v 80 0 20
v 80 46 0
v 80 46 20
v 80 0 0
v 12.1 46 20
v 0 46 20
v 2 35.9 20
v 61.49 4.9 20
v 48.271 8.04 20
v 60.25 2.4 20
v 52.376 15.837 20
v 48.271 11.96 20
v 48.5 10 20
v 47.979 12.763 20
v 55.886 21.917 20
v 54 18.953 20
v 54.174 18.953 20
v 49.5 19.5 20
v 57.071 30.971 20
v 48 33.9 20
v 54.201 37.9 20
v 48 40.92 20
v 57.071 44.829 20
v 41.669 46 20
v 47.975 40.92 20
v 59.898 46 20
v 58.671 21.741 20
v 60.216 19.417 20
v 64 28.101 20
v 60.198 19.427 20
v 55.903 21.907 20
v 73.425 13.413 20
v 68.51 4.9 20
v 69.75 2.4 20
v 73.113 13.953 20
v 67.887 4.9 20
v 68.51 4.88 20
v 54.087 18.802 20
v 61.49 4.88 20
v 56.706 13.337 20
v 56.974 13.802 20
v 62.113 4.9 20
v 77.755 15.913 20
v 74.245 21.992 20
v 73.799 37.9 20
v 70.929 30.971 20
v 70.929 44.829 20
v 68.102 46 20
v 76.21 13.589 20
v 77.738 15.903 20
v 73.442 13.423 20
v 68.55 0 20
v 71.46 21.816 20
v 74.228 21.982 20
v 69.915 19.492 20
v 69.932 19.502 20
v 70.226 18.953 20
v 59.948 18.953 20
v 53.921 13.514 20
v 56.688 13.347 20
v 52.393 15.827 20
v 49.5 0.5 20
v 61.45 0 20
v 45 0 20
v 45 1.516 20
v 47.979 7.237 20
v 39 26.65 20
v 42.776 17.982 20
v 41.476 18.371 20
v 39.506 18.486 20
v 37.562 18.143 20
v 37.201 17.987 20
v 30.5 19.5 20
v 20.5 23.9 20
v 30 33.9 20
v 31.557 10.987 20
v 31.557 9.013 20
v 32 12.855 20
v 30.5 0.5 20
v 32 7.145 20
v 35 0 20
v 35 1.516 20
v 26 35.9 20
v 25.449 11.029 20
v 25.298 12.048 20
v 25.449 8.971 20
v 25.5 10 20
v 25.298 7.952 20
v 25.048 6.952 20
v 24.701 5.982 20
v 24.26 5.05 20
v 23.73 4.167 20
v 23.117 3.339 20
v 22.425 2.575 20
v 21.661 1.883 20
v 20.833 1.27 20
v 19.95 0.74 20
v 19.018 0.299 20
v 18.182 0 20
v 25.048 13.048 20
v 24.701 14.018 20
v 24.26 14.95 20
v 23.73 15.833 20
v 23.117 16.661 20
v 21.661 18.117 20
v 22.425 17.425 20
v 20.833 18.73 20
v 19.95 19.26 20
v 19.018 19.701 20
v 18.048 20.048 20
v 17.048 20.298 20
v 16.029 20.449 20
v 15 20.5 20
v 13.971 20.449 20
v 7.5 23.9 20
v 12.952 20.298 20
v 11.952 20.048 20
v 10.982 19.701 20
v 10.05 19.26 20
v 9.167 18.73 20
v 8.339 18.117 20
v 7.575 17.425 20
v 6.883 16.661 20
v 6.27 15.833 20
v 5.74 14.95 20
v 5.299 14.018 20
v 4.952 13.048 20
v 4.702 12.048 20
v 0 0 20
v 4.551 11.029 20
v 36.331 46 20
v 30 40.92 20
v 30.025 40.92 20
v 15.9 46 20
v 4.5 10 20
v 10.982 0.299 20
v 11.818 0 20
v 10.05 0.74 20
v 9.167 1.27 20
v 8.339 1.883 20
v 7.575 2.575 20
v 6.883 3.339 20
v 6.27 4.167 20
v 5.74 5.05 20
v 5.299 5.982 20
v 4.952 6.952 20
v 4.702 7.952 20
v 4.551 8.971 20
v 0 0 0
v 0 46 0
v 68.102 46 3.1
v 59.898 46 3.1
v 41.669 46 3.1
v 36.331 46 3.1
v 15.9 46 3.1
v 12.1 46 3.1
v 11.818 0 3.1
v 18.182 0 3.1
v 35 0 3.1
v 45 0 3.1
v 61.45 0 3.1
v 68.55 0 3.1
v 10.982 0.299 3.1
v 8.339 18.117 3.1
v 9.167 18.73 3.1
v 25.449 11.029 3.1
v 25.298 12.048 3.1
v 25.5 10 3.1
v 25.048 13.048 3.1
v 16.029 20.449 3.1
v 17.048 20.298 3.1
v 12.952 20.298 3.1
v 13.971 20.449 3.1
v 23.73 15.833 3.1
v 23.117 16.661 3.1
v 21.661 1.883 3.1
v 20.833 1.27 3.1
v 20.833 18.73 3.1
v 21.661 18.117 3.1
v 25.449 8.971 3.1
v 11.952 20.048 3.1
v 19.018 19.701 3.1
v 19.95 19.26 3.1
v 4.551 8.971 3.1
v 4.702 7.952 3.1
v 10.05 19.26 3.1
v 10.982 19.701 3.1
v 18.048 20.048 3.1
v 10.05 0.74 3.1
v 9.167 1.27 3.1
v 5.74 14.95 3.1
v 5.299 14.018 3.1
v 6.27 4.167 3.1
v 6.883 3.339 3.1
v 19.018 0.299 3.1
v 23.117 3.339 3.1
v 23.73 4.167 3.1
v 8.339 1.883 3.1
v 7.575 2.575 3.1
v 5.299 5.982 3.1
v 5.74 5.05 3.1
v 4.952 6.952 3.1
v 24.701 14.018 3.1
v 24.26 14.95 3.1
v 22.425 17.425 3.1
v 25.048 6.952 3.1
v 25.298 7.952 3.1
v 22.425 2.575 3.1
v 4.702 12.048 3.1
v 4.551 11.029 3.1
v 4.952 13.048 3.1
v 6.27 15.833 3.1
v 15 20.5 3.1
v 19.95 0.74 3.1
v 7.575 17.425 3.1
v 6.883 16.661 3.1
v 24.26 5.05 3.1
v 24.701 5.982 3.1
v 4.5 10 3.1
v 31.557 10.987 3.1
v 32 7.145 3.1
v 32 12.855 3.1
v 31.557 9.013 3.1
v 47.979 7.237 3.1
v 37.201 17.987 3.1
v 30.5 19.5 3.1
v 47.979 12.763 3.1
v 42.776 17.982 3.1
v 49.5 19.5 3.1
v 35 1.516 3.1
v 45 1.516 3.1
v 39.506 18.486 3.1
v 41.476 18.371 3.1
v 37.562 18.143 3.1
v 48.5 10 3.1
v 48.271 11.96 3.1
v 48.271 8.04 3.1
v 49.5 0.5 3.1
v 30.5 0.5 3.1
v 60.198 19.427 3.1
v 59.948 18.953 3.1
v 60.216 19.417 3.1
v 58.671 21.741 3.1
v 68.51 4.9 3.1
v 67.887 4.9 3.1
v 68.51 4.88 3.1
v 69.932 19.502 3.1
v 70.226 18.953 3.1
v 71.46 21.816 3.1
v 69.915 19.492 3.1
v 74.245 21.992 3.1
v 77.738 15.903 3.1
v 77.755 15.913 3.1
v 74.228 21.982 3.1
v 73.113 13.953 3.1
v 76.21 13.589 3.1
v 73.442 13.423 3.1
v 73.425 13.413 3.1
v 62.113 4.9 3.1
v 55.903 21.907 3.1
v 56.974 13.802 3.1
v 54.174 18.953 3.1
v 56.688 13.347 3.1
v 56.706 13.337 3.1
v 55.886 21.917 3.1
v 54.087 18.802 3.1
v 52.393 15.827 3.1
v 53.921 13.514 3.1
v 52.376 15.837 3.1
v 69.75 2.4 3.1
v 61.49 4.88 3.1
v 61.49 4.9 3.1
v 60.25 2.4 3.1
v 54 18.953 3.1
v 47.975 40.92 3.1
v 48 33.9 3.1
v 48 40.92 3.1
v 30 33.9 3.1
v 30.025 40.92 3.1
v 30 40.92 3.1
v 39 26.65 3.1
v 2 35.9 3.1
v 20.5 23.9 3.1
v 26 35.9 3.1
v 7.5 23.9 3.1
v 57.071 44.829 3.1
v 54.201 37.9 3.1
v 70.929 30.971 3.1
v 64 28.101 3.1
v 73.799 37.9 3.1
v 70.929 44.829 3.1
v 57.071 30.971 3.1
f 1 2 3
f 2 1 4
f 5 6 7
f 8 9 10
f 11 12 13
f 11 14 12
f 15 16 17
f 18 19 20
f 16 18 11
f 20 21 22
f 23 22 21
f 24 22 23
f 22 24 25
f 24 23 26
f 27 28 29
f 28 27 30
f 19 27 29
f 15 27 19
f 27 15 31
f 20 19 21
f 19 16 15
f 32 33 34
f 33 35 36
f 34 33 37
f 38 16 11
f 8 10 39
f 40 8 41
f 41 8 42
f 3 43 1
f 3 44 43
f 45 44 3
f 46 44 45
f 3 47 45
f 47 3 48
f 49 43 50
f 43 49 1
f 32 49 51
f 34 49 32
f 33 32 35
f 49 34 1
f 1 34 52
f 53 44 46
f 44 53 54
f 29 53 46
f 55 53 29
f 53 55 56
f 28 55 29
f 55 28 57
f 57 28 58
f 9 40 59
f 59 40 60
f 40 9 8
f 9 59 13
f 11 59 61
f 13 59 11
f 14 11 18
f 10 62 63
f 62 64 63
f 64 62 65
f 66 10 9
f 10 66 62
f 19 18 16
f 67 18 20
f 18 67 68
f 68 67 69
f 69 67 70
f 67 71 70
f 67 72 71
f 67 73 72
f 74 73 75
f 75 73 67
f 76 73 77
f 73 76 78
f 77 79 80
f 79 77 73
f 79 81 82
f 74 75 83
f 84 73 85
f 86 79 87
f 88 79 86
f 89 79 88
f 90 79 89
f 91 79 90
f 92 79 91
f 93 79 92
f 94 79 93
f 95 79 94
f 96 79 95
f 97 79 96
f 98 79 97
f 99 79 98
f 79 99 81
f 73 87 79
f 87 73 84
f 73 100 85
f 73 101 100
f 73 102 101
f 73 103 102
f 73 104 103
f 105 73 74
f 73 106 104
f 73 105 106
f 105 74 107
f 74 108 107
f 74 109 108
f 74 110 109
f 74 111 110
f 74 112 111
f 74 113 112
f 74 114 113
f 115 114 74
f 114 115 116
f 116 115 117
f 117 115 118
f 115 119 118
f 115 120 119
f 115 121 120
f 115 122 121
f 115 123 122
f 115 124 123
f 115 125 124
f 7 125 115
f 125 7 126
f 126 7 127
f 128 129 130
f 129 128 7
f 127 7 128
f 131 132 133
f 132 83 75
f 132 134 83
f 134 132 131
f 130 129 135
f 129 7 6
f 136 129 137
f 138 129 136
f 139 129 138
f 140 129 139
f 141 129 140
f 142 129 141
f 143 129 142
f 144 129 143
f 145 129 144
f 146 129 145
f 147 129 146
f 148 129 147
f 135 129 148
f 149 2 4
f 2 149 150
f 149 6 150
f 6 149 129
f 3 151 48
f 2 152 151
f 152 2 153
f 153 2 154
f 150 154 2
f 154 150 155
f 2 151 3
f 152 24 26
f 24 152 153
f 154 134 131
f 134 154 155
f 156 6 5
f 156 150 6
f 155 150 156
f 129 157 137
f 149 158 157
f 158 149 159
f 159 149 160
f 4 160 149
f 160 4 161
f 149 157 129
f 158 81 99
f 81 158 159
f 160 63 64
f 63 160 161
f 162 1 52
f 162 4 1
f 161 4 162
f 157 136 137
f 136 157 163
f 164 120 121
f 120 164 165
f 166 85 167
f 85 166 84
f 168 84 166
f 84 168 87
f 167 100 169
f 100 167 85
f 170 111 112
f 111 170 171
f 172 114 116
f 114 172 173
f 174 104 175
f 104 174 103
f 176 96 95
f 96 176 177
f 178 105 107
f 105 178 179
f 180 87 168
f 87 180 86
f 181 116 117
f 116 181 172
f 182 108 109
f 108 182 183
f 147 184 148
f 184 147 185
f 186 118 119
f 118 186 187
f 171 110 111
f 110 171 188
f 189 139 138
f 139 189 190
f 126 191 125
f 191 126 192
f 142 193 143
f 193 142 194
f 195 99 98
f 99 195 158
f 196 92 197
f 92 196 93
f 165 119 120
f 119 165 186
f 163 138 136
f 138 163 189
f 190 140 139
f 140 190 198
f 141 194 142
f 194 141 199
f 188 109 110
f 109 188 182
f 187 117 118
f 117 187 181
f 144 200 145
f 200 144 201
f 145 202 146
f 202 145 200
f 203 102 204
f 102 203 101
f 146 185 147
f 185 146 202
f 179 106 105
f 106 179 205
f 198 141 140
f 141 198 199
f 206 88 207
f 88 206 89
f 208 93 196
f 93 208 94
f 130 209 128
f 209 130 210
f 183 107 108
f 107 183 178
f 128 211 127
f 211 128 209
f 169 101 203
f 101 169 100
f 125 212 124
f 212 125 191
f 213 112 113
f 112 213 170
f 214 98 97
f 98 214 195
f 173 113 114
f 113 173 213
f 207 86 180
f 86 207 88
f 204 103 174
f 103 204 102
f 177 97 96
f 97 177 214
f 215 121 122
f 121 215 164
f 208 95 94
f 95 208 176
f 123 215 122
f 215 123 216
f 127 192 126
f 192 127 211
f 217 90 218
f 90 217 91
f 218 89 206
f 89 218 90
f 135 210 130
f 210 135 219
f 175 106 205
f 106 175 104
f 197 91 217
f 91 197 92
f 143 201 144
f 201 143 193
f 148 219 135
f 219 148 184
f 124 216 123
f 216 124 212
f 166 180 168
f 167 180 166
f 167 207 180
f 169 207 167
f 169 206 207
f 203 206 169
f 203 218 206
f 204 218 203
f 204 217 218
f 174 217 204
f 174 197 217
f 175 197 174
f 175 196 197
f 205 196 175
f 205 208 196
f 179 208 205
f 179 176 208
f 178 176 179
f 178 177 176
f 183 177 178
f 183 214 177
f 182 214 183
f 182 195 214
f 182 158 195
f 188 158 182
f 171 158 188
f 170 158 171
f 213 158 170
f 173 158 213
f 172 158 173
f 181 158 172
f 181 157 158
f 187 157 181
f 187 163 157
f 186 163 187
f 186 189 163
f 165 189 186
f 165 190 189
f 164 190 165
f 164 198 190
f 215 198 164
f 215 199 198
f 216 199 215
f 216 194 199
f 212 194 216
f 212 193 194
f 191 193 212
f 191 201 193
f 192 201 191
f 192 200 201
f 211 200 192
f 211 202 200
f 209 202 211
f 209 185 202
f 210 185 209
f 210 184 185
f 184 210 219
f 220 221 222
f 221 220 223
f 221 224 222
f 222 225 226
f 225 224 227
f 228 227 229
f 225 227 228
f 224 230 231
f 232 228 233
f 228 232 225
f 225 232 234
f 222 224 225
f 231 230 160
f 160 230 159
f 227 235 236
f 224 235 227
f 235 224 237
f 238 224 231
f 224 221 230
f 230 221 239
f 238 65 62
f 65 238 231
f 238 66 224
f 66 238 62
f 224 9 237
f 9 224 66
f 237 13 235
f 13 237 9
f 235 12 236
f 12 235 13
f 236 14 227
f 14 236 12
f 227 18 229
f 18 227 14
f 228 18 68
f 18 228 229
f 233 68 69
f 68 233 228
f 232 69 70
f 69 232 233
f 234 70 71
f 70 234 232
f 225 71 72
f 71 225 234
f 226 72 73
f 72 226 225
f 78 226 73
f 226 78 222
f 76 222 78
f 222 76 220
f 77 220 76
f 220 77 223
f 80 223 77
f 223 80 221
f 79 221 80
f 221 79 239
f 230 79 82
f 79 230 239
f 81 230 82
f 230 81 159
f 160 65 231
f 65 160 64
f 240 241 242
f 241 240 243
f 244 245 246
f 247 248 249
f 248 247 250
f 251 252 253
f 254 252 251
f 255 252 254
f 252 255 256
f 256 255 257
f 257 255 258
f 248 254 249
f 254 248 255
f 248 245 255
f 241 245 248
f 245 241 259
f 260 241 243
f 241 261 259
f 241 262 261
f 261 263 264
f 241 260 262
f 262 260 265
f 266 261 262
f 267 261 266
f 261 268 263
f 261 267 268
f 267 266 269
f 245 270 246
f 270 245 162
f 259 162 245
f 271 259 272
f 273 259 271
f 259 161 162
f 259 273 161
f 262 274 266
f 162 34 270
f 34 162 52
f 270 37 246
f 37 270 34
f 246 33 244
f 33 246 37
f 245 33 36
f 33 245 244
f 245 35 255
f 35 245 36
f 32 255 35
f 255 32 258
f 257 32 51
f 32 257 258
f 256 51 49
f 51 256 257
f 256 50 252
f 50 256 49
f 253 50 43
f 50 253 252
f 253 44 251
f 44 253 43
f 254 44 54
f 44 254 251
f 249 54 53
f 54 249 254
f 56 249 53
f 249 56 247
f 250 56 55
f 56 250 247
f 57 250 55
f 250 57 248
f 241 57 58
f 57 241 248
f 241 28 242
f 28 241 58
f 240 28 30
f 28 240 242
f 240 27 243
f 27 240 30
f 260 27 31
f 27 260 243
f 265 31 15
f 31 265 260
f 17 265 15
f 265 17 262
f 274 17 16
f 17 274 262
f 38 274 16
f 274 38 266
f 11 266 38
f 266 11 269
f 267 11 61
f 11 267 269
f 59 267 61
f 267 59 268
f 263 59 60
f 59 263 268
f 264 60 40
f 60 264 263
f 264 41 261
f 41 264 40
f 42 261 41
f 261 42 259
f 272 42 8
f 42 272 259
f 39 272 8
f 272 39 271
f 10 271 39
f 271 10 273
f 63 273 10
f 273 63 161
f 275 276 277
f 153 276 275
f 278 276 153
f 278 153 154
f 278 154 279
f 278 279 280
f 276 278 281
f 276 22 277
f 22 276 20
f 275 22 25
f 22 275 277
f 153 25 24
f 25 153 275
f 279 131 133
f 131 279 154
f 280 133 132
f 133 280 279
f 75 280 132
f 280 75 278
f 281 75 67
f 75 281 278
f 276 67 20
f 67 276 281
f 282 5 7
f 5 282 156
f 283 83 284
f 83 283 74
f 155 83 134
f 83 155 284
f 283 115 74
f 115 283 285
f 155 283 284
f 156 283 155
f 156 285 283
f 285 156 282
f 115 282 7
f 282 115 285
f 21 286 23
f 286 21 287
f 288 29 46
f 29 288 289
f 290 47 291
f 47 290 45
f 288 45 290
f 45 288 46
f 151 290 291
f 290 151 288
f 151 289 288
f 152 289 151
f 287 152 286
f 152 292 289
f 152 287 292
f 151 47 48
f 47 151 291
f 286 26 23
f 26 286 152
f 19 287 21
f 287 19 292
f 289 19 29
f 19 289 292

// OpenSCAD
// Box dimensions
box_x = 80;
box_y = 46;
box_z = 20;

// Pocket dimensions
pocket_radius = 21;
pocket_depth  = 17;

// Position
shield_x_wall = 15;
shield_y_wall = 10;

wound_x_wall = 40;
wound_y_wall = 10;

ion_x_wall = 65;
ion_y_wall = 0;

// Opposite side of holder
vehicle_x_wall = 30;
vehicle_y_wall = box_y-12;

commander_x_wall = 14;
commander_y_wall = box_y-10;

aim_x_wall = 64;
aim_y_wall = box_y-8;

ion_tri_length = 5;
niblet_length = 3.5;
module ion_tri_piece_1 () {
    translate([2, niblet_length, 0]){
       polygon(points=[
        [0, 0],        // Point A
        [ion_tri_length, 0],        // Point B
        [ion_tri_length/2, ion_tri_length/4]       // Point C
    ]); 
    }
}
module ion_point_niblet(){
    ion_tri_piece_1();
    mirror([0, 1, 0]){
        ion_tri_piece_1();
    }
    translate([2, -(niblet_length+0.01), 0]){
        square([ion_tri_length,((niblet_length * 2) + 0.02)]); //0.2 used here to connect triangles to square
    }    
}

module create_ion_token(){
    // ion Side length
    s = 22;
    // Height of ion equilateral triangle
    h = s * sqrt(3) / 2;
    //Start of the ion token creation. No, it can't be refactored
    union(){
        translate([0,(h/3)*2,0]){
            rotate([0,0,60]){
                translate([0,(h/3),0]){
                    union(){
                        translate([0,-(h/3)*1,0]){
                            rotate([0,0,60]){
                                translate([0,-((h/3)*2),0]){
                                    union(){
                                        //first niblet
                                        translate([0,-2,0]){
                                            rotate([0,0,90]){
                                                ion_point_niblet();
                                            }
                                        }
                                        
                                        //ion token base
                                        //rotate so we can align the niblets
                                        rotate([0,0,60]){ 
                                            polygon(points=[
                                            [0, 0],        // Point A
                                            [s, 0],        // Point B
                                            [s/2, h]       // Point C
                                            ]);
                                        }
                                    }
                                }
                            }
                        }
                        //second niblet
                        translate([0,-0.8,0]){
                            rotate([0,0,90]){
                                ion_point_niblet();
                            }
                        }
                    }
                }
            }
        }
        //third niblet
        translate([0,-2,0]){
            rotate([0,0,90]){
                ion_point_niblet();
            }
        }
    }
}

module create_vehicle_token(){
    //vehicle_tri_side
    vehicle_tri_height_from_base = 7.25;
    vehicle_tri_base_len = 18;
    vehicle_tri_square_height = 7;
    square([vehicle_tri_base_len,vehicle_tri_square_height+0.02]);
    mirror([0,1,0]){
        polygon(points=[
        [0, 0],        // Point A
        [vehicle_tri_base_len, 0],        // Point B
        [vehicle_tri_base_len/2, vehicle_tri_height_from_base]       // Point C
        ]);
    }
    translate([0,vehicle_tri_square_height,0]){
        polygon(points=[
            [0, 0],        // Point A
            [vehicle_tri_base_len, 0],        // Point B
            [vehicle_tri_base_len/2, vehicle_tri_height_from_base]       // Point C
            ]);
    }
}

module create_commander_token(){
    //Commander token
    polygon(points=[
        [12, 0],        // Point A
        [0, 12],        // Point B
        [-12, 0],       // Point C
        [-6.5, -12],       // Point D
        [6.5, -12],       // Point E
        ]);
}

module create_aim_token(){
    // Parameters
    side = 7.5;   // side length in mm
    n = 8;      // octagon

    // Circumradius calculation
    R = side / sqrt(2 - 2 * cos(360 / n));

    // Draw octagon
    polygon(points = [
        for (i = [0:n-1])
            [ R * cos(360/n * i),
              R * sin(360/n * i) ]
    ]);
}

difference() {
    // Outer box
    cube([box_x, box_y, box_z]);

    // Shield pocket
    translate([shield_x_wall,
    shield_y_wall, box_z+0.1 - pocket_depth])
        cylinder(
            h = pocket_depth,
            d = pocket_radius,
            $fn = 64
        );
   // wound token pocket
   translate([wound_x_wall,
    wound_y_wall, box_z+0.1 - pocket_depth])
    linear_extrude(height=pocket_depth){
    union(){
        circle(d=17);
        wound_points = [[6, -6],
        [-6, 6],
        [9.5, 9.5]];
        
        polygon(points = wound_points);

        mirror([1,0,0]){
            polygon(points = wound_points);
        }
        mirror([0,1,0]){
            polygon(points = wound_points);
        }
        mirror([1,1,0]){
            polygon(points = wound_points);
        }
        translate([-5, -10.1, 0])square([10, 10]);
        }
    }
    //ion token pocket
    translate([ion_x_wall,ion_y_wall-0.1,box_z+0.1- pocket_depth]){
        linear_extrude(height=pocket_depth){
            create_ion_token();
        }    
    }
    //Create vehicle token
    translate([vehicle_x_wall,vehicle_y_wall-0.1,box_z+0.1- pocket_depth]){
        linear_extrude(height=pocket_depth){
            create_vehicle_token();
        }    
    }
    
    //Create commander token
    translate([commander_x_wall,commander_y_wall-0.1,box_z+0.1- pocket_depth]){
        linear_extrude(height=pocket_depth){
            create_commander_token();
        }    
    }
    
    //Create aim token
    translate([aim_x_wall,aim_y_wall-0.1,box_z+0.1- pocket_depth]){
        linear_extrude(height=pocket_depth){
            create_aim_token();
        }    
    }
}
